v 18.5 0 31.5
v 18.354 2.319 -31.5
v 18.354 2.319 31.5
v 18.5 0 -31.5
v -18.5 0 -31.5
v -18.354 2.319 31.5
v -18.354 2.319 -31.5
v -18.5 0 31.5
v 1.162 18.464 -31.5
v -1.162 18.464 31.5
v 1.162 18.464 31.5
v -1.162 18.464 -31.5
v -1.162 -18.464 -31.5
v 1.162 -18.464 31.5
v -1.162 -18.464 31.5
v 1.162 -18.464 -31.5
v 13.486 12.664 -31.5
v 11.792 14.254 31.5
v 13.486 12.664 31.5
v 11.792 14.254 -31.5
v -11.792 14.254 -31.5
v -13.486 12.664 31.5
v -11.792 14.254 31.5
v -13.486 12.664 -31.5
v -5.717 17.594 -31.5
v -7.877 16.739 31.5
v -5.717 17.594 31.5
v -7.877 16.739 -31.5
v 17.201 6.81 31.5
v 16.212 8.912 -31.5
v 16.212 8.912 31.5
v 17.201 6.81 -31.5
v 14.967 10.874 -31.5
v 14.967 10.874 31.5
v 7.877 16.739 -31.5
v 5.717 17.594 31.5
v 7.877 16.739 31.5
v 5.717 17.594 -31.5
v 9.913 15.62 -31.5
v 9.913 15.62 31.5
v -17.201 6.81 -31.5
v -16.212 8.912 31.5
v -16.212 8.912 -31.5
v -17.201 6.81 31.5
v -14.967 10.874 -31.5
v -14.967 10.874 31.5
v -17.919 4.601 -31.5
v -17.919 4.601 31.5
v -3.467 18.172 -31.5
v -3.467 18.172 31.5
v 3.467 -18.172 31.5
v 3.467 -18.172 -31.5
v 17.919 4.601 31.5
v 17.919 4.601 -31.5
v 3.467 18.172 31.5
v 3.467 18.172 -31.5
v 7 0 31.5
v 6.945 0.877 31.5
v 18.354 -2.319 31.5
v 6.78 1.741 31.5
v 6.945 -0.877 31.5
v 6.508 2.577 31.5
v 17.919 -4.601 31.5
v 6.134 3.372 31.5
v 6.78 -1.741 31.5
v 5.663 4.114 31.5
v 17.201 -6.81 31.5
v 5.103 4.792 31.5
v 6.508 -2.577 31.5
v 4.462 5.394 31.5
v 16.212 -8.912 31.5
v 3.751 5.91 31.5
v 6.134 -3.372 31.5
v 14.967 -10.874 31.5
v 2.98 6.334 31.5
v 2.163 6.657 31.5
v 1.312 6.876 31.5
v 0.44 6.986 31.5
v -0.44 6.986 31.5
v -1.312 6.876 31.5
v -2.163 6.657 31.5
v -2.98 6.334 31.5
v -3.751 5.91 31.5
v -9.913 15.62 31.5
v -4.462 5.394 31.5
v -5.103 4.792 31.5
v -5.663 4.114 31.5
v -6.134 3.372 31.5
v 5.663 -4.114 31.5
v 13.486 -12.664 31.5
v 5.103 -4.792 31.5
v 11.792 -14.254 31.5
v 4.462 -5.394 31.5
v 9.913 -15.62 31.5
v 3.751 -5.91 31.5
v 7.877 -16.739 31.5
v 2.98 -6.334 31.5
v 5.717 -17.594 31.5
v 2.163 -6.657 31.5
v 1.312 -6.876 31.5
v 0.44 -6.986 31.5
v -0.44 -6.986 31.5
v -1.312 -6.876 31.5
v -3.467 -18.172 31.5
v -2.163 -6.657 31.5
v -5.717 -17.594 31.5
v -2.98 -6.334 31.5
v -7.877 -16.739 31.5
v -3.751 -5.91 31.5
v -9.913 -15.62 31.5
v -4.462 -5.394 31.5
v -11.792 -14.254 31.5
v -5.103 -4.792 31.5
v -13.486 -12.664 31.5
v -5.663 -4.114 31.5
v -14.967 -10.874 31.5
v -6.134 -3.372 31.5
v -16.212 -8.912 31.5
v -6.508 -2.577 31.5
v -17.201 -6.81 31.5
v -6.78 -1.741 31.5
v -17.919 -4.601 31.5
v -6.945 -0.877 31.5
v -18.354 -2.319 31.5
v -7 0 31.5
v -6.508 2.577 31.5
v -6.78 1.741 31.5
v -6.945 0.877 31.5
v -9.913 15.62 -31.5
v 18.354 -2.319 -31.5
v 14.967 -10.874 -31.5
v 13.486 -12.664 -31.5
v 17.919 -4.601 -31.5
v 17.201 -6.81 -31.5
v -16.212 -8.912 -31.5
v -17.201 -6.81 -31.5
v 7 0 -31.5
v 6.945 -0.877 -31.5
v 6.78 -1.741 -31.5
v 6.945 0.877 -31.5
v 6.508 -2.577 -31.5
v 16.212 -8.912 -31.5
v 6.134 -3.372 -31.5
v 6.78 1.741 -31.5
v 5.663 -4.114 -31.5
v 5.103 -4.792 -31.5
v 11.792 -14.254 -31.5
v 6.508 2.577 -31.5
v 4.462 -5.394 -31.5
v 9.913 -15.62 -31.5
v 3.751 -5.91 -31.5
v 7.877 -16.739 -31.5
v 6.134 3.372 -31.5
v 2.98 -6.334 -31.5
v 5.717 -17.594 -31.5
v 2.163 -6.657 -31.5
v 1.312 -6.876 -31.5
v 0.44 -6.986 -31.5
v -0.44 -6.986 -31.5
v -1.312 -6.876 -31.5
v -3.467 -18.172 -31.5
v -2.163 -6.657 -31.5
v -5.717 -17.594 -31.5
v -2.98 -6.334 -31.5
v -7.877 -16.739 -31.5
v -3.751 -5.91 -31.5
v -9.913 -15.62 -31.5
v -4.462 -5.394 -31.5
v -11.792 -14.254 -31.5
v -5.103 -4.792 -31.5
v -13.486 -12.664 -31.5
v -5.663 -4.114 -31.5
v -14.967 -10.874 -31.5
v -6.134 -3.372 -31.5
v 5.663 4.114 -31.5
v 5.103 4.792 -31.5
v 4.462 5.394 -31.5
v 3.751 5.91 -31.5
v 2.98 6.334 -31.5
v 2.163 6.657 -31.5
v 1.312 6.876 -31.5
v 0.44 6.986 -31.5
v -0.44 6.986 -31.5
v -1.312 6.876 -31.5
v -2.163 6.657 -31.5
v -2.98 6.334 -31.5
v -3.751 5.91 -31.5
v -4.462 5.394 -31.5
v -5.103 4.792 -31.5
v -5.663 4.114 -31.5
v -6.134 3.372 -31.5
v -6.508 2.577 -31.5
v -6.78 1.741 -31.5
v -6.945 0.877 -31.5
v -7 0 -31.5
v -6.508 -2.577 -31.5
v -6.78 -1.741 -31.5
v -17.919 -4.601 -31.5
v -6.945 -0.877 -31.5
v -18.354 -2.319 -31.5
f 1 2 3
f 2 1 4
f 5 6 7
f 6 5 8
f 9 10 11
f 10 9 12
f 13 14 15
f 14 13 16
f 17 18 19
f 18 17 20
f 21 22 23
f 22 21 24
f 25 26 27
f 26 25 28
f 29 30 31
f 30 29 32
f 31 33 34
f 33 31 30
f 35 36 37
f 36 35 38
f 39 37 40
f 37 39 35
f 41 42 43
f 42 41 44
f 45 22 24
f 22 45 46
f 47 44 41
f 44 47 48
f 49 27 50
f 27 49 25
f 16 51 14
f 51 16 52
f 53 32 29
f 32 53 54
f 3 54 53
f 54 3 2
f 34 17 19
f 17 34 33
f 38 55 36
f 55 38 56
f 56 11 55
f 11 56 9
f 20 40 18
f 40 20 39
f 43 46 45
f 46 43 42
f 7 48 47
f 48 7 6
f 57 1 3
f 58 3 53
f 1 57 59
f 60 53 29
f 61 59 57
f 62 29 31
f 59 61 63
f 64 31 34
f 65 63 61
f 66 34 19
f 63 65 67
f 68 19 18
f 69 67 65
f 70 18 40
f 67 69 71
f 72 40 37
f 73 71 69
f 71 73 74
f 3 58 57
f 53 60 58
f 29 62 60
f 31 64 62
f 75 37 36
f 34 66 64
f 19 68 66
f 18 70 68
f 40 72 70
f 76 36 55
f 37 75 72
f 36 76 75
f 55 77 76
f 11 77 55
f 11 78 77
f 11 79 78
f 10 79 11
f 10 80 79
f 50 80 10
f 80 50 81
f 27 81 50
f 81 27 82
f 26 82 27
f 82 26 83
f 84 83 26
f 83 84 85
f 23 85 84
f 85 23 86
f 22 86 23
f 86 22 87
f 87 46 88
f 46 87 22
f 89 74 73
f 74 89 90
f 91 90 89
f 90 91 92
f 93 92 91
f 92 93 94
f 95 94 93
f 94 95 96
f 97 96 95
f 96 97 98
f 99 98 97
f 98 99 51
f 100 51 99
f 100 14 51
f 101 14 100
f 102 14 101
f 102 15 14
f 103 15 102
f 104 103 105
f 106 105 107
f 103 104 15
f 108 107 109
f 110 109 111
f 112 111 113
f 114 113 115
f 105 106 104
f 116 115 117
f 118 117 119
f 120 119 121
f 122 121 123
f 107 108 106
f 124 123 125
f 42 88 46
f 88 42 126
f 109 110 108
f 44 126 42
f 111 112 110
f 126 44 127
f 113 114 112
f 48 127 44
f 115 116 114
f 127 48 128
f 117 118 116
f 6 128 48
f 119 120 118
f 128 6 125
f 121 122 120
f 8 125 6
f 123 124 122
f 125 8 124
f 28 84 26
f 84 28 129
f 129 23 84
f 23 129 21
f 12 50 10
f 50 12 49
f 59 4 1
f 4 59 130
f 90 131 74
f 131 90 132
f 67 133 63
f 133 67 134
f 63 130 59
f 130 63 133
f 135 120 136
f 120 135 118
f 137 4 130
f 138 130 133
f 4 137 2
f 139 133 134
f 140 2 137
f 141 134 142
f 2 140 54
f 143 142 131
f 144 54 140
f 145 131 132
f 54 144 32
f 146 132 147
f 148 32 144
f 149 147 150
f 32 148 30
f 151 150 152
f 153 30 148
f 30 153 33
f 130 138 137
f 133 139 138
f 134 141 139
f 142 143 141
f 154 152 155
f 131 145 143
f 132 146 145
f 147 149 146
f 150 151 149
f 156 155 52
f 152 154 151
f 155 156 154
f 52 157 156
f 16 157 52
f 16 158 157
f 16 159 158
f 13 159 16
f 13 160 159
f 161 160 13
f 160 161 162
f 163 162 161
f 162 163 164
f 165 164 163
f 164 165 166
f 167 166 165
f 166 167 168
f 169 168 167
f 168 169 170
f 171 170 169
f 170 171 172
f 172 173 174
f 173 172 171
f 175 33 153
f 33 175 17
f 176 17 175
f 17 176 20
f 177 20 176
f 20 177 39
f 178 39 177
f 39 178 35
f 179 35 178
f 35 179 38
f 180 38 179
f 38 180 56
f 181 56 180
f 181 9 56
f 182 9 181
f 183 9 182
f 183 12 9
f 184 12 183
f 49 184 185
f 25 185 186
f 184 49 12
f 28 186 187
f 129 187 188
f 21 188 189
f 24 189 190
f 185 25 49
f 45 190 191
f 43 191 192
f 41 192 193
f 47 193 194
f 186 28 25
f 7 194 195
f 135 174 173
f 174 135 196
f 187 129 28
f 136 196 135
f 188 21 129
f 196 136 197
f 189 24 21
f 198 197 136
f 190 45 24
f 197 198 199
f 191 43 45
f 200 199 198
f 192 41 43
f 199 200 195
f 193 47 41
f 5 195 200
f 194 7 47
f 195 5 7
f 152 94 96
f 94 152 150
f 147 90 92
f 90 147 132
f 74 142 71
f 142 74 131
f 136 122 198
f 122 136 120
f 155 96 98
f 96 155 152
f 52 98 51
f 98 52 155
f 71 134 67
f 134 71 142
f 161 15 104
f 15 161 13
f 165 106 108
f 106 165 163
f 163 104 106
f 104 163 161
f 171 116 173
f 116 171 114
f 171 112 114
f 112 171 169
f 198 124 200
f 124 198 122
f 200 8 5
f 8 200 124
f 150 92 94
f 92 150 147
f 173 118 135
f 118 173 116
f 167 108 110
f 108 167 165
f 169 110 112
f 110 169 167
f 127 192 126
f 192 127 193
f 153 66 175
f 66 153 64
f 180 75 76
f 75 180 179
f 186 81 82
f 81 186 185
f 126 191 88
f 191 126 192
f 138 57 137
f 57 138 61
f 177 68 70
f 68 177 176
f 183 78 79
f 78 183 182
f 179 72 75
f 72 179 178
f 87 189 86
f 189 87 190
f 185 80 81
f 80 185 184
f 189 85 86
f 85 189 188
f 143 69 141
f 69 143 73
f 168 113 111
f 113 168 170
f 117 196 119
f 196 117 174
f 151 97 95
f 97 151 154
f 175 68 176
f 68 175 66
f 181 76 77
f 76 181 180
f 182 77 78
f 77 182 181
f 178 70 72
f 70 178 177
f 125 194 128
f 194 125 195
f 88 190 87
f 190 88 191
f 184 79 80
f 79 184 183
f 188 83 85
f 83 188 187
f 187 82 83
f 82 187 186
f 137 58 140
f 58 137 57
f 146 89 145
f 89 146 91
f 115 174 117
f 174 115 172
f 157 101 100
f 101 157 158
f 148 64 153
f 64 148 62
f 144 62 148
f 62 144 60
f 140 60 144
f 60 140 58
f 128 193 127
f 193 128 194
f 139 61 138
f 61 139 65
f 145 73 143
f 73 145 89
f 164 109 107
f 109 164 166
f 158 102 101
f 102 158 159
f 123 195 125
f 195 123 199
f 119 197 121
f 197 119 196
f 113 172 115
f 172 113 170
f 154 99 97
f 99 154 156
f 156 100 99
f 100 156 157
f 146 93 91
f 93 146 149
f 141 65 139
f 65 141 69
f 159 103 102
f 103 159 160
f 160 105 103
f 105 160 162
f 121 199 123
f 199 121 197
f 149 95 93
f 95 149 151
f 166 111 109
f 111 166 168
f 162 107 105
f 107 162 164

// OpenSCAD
$fn = 50;


difference() {
	union() {
		translate(v = [0, 0, -31.5000000000]) {
			cylinder(h = 63, r = 18.5000000000);
		}
	}
	union() {
		translate(v = [0, 0, -100.0000000000]) {
			cylinder(h = 200, r = 7);
		}
	}
}
